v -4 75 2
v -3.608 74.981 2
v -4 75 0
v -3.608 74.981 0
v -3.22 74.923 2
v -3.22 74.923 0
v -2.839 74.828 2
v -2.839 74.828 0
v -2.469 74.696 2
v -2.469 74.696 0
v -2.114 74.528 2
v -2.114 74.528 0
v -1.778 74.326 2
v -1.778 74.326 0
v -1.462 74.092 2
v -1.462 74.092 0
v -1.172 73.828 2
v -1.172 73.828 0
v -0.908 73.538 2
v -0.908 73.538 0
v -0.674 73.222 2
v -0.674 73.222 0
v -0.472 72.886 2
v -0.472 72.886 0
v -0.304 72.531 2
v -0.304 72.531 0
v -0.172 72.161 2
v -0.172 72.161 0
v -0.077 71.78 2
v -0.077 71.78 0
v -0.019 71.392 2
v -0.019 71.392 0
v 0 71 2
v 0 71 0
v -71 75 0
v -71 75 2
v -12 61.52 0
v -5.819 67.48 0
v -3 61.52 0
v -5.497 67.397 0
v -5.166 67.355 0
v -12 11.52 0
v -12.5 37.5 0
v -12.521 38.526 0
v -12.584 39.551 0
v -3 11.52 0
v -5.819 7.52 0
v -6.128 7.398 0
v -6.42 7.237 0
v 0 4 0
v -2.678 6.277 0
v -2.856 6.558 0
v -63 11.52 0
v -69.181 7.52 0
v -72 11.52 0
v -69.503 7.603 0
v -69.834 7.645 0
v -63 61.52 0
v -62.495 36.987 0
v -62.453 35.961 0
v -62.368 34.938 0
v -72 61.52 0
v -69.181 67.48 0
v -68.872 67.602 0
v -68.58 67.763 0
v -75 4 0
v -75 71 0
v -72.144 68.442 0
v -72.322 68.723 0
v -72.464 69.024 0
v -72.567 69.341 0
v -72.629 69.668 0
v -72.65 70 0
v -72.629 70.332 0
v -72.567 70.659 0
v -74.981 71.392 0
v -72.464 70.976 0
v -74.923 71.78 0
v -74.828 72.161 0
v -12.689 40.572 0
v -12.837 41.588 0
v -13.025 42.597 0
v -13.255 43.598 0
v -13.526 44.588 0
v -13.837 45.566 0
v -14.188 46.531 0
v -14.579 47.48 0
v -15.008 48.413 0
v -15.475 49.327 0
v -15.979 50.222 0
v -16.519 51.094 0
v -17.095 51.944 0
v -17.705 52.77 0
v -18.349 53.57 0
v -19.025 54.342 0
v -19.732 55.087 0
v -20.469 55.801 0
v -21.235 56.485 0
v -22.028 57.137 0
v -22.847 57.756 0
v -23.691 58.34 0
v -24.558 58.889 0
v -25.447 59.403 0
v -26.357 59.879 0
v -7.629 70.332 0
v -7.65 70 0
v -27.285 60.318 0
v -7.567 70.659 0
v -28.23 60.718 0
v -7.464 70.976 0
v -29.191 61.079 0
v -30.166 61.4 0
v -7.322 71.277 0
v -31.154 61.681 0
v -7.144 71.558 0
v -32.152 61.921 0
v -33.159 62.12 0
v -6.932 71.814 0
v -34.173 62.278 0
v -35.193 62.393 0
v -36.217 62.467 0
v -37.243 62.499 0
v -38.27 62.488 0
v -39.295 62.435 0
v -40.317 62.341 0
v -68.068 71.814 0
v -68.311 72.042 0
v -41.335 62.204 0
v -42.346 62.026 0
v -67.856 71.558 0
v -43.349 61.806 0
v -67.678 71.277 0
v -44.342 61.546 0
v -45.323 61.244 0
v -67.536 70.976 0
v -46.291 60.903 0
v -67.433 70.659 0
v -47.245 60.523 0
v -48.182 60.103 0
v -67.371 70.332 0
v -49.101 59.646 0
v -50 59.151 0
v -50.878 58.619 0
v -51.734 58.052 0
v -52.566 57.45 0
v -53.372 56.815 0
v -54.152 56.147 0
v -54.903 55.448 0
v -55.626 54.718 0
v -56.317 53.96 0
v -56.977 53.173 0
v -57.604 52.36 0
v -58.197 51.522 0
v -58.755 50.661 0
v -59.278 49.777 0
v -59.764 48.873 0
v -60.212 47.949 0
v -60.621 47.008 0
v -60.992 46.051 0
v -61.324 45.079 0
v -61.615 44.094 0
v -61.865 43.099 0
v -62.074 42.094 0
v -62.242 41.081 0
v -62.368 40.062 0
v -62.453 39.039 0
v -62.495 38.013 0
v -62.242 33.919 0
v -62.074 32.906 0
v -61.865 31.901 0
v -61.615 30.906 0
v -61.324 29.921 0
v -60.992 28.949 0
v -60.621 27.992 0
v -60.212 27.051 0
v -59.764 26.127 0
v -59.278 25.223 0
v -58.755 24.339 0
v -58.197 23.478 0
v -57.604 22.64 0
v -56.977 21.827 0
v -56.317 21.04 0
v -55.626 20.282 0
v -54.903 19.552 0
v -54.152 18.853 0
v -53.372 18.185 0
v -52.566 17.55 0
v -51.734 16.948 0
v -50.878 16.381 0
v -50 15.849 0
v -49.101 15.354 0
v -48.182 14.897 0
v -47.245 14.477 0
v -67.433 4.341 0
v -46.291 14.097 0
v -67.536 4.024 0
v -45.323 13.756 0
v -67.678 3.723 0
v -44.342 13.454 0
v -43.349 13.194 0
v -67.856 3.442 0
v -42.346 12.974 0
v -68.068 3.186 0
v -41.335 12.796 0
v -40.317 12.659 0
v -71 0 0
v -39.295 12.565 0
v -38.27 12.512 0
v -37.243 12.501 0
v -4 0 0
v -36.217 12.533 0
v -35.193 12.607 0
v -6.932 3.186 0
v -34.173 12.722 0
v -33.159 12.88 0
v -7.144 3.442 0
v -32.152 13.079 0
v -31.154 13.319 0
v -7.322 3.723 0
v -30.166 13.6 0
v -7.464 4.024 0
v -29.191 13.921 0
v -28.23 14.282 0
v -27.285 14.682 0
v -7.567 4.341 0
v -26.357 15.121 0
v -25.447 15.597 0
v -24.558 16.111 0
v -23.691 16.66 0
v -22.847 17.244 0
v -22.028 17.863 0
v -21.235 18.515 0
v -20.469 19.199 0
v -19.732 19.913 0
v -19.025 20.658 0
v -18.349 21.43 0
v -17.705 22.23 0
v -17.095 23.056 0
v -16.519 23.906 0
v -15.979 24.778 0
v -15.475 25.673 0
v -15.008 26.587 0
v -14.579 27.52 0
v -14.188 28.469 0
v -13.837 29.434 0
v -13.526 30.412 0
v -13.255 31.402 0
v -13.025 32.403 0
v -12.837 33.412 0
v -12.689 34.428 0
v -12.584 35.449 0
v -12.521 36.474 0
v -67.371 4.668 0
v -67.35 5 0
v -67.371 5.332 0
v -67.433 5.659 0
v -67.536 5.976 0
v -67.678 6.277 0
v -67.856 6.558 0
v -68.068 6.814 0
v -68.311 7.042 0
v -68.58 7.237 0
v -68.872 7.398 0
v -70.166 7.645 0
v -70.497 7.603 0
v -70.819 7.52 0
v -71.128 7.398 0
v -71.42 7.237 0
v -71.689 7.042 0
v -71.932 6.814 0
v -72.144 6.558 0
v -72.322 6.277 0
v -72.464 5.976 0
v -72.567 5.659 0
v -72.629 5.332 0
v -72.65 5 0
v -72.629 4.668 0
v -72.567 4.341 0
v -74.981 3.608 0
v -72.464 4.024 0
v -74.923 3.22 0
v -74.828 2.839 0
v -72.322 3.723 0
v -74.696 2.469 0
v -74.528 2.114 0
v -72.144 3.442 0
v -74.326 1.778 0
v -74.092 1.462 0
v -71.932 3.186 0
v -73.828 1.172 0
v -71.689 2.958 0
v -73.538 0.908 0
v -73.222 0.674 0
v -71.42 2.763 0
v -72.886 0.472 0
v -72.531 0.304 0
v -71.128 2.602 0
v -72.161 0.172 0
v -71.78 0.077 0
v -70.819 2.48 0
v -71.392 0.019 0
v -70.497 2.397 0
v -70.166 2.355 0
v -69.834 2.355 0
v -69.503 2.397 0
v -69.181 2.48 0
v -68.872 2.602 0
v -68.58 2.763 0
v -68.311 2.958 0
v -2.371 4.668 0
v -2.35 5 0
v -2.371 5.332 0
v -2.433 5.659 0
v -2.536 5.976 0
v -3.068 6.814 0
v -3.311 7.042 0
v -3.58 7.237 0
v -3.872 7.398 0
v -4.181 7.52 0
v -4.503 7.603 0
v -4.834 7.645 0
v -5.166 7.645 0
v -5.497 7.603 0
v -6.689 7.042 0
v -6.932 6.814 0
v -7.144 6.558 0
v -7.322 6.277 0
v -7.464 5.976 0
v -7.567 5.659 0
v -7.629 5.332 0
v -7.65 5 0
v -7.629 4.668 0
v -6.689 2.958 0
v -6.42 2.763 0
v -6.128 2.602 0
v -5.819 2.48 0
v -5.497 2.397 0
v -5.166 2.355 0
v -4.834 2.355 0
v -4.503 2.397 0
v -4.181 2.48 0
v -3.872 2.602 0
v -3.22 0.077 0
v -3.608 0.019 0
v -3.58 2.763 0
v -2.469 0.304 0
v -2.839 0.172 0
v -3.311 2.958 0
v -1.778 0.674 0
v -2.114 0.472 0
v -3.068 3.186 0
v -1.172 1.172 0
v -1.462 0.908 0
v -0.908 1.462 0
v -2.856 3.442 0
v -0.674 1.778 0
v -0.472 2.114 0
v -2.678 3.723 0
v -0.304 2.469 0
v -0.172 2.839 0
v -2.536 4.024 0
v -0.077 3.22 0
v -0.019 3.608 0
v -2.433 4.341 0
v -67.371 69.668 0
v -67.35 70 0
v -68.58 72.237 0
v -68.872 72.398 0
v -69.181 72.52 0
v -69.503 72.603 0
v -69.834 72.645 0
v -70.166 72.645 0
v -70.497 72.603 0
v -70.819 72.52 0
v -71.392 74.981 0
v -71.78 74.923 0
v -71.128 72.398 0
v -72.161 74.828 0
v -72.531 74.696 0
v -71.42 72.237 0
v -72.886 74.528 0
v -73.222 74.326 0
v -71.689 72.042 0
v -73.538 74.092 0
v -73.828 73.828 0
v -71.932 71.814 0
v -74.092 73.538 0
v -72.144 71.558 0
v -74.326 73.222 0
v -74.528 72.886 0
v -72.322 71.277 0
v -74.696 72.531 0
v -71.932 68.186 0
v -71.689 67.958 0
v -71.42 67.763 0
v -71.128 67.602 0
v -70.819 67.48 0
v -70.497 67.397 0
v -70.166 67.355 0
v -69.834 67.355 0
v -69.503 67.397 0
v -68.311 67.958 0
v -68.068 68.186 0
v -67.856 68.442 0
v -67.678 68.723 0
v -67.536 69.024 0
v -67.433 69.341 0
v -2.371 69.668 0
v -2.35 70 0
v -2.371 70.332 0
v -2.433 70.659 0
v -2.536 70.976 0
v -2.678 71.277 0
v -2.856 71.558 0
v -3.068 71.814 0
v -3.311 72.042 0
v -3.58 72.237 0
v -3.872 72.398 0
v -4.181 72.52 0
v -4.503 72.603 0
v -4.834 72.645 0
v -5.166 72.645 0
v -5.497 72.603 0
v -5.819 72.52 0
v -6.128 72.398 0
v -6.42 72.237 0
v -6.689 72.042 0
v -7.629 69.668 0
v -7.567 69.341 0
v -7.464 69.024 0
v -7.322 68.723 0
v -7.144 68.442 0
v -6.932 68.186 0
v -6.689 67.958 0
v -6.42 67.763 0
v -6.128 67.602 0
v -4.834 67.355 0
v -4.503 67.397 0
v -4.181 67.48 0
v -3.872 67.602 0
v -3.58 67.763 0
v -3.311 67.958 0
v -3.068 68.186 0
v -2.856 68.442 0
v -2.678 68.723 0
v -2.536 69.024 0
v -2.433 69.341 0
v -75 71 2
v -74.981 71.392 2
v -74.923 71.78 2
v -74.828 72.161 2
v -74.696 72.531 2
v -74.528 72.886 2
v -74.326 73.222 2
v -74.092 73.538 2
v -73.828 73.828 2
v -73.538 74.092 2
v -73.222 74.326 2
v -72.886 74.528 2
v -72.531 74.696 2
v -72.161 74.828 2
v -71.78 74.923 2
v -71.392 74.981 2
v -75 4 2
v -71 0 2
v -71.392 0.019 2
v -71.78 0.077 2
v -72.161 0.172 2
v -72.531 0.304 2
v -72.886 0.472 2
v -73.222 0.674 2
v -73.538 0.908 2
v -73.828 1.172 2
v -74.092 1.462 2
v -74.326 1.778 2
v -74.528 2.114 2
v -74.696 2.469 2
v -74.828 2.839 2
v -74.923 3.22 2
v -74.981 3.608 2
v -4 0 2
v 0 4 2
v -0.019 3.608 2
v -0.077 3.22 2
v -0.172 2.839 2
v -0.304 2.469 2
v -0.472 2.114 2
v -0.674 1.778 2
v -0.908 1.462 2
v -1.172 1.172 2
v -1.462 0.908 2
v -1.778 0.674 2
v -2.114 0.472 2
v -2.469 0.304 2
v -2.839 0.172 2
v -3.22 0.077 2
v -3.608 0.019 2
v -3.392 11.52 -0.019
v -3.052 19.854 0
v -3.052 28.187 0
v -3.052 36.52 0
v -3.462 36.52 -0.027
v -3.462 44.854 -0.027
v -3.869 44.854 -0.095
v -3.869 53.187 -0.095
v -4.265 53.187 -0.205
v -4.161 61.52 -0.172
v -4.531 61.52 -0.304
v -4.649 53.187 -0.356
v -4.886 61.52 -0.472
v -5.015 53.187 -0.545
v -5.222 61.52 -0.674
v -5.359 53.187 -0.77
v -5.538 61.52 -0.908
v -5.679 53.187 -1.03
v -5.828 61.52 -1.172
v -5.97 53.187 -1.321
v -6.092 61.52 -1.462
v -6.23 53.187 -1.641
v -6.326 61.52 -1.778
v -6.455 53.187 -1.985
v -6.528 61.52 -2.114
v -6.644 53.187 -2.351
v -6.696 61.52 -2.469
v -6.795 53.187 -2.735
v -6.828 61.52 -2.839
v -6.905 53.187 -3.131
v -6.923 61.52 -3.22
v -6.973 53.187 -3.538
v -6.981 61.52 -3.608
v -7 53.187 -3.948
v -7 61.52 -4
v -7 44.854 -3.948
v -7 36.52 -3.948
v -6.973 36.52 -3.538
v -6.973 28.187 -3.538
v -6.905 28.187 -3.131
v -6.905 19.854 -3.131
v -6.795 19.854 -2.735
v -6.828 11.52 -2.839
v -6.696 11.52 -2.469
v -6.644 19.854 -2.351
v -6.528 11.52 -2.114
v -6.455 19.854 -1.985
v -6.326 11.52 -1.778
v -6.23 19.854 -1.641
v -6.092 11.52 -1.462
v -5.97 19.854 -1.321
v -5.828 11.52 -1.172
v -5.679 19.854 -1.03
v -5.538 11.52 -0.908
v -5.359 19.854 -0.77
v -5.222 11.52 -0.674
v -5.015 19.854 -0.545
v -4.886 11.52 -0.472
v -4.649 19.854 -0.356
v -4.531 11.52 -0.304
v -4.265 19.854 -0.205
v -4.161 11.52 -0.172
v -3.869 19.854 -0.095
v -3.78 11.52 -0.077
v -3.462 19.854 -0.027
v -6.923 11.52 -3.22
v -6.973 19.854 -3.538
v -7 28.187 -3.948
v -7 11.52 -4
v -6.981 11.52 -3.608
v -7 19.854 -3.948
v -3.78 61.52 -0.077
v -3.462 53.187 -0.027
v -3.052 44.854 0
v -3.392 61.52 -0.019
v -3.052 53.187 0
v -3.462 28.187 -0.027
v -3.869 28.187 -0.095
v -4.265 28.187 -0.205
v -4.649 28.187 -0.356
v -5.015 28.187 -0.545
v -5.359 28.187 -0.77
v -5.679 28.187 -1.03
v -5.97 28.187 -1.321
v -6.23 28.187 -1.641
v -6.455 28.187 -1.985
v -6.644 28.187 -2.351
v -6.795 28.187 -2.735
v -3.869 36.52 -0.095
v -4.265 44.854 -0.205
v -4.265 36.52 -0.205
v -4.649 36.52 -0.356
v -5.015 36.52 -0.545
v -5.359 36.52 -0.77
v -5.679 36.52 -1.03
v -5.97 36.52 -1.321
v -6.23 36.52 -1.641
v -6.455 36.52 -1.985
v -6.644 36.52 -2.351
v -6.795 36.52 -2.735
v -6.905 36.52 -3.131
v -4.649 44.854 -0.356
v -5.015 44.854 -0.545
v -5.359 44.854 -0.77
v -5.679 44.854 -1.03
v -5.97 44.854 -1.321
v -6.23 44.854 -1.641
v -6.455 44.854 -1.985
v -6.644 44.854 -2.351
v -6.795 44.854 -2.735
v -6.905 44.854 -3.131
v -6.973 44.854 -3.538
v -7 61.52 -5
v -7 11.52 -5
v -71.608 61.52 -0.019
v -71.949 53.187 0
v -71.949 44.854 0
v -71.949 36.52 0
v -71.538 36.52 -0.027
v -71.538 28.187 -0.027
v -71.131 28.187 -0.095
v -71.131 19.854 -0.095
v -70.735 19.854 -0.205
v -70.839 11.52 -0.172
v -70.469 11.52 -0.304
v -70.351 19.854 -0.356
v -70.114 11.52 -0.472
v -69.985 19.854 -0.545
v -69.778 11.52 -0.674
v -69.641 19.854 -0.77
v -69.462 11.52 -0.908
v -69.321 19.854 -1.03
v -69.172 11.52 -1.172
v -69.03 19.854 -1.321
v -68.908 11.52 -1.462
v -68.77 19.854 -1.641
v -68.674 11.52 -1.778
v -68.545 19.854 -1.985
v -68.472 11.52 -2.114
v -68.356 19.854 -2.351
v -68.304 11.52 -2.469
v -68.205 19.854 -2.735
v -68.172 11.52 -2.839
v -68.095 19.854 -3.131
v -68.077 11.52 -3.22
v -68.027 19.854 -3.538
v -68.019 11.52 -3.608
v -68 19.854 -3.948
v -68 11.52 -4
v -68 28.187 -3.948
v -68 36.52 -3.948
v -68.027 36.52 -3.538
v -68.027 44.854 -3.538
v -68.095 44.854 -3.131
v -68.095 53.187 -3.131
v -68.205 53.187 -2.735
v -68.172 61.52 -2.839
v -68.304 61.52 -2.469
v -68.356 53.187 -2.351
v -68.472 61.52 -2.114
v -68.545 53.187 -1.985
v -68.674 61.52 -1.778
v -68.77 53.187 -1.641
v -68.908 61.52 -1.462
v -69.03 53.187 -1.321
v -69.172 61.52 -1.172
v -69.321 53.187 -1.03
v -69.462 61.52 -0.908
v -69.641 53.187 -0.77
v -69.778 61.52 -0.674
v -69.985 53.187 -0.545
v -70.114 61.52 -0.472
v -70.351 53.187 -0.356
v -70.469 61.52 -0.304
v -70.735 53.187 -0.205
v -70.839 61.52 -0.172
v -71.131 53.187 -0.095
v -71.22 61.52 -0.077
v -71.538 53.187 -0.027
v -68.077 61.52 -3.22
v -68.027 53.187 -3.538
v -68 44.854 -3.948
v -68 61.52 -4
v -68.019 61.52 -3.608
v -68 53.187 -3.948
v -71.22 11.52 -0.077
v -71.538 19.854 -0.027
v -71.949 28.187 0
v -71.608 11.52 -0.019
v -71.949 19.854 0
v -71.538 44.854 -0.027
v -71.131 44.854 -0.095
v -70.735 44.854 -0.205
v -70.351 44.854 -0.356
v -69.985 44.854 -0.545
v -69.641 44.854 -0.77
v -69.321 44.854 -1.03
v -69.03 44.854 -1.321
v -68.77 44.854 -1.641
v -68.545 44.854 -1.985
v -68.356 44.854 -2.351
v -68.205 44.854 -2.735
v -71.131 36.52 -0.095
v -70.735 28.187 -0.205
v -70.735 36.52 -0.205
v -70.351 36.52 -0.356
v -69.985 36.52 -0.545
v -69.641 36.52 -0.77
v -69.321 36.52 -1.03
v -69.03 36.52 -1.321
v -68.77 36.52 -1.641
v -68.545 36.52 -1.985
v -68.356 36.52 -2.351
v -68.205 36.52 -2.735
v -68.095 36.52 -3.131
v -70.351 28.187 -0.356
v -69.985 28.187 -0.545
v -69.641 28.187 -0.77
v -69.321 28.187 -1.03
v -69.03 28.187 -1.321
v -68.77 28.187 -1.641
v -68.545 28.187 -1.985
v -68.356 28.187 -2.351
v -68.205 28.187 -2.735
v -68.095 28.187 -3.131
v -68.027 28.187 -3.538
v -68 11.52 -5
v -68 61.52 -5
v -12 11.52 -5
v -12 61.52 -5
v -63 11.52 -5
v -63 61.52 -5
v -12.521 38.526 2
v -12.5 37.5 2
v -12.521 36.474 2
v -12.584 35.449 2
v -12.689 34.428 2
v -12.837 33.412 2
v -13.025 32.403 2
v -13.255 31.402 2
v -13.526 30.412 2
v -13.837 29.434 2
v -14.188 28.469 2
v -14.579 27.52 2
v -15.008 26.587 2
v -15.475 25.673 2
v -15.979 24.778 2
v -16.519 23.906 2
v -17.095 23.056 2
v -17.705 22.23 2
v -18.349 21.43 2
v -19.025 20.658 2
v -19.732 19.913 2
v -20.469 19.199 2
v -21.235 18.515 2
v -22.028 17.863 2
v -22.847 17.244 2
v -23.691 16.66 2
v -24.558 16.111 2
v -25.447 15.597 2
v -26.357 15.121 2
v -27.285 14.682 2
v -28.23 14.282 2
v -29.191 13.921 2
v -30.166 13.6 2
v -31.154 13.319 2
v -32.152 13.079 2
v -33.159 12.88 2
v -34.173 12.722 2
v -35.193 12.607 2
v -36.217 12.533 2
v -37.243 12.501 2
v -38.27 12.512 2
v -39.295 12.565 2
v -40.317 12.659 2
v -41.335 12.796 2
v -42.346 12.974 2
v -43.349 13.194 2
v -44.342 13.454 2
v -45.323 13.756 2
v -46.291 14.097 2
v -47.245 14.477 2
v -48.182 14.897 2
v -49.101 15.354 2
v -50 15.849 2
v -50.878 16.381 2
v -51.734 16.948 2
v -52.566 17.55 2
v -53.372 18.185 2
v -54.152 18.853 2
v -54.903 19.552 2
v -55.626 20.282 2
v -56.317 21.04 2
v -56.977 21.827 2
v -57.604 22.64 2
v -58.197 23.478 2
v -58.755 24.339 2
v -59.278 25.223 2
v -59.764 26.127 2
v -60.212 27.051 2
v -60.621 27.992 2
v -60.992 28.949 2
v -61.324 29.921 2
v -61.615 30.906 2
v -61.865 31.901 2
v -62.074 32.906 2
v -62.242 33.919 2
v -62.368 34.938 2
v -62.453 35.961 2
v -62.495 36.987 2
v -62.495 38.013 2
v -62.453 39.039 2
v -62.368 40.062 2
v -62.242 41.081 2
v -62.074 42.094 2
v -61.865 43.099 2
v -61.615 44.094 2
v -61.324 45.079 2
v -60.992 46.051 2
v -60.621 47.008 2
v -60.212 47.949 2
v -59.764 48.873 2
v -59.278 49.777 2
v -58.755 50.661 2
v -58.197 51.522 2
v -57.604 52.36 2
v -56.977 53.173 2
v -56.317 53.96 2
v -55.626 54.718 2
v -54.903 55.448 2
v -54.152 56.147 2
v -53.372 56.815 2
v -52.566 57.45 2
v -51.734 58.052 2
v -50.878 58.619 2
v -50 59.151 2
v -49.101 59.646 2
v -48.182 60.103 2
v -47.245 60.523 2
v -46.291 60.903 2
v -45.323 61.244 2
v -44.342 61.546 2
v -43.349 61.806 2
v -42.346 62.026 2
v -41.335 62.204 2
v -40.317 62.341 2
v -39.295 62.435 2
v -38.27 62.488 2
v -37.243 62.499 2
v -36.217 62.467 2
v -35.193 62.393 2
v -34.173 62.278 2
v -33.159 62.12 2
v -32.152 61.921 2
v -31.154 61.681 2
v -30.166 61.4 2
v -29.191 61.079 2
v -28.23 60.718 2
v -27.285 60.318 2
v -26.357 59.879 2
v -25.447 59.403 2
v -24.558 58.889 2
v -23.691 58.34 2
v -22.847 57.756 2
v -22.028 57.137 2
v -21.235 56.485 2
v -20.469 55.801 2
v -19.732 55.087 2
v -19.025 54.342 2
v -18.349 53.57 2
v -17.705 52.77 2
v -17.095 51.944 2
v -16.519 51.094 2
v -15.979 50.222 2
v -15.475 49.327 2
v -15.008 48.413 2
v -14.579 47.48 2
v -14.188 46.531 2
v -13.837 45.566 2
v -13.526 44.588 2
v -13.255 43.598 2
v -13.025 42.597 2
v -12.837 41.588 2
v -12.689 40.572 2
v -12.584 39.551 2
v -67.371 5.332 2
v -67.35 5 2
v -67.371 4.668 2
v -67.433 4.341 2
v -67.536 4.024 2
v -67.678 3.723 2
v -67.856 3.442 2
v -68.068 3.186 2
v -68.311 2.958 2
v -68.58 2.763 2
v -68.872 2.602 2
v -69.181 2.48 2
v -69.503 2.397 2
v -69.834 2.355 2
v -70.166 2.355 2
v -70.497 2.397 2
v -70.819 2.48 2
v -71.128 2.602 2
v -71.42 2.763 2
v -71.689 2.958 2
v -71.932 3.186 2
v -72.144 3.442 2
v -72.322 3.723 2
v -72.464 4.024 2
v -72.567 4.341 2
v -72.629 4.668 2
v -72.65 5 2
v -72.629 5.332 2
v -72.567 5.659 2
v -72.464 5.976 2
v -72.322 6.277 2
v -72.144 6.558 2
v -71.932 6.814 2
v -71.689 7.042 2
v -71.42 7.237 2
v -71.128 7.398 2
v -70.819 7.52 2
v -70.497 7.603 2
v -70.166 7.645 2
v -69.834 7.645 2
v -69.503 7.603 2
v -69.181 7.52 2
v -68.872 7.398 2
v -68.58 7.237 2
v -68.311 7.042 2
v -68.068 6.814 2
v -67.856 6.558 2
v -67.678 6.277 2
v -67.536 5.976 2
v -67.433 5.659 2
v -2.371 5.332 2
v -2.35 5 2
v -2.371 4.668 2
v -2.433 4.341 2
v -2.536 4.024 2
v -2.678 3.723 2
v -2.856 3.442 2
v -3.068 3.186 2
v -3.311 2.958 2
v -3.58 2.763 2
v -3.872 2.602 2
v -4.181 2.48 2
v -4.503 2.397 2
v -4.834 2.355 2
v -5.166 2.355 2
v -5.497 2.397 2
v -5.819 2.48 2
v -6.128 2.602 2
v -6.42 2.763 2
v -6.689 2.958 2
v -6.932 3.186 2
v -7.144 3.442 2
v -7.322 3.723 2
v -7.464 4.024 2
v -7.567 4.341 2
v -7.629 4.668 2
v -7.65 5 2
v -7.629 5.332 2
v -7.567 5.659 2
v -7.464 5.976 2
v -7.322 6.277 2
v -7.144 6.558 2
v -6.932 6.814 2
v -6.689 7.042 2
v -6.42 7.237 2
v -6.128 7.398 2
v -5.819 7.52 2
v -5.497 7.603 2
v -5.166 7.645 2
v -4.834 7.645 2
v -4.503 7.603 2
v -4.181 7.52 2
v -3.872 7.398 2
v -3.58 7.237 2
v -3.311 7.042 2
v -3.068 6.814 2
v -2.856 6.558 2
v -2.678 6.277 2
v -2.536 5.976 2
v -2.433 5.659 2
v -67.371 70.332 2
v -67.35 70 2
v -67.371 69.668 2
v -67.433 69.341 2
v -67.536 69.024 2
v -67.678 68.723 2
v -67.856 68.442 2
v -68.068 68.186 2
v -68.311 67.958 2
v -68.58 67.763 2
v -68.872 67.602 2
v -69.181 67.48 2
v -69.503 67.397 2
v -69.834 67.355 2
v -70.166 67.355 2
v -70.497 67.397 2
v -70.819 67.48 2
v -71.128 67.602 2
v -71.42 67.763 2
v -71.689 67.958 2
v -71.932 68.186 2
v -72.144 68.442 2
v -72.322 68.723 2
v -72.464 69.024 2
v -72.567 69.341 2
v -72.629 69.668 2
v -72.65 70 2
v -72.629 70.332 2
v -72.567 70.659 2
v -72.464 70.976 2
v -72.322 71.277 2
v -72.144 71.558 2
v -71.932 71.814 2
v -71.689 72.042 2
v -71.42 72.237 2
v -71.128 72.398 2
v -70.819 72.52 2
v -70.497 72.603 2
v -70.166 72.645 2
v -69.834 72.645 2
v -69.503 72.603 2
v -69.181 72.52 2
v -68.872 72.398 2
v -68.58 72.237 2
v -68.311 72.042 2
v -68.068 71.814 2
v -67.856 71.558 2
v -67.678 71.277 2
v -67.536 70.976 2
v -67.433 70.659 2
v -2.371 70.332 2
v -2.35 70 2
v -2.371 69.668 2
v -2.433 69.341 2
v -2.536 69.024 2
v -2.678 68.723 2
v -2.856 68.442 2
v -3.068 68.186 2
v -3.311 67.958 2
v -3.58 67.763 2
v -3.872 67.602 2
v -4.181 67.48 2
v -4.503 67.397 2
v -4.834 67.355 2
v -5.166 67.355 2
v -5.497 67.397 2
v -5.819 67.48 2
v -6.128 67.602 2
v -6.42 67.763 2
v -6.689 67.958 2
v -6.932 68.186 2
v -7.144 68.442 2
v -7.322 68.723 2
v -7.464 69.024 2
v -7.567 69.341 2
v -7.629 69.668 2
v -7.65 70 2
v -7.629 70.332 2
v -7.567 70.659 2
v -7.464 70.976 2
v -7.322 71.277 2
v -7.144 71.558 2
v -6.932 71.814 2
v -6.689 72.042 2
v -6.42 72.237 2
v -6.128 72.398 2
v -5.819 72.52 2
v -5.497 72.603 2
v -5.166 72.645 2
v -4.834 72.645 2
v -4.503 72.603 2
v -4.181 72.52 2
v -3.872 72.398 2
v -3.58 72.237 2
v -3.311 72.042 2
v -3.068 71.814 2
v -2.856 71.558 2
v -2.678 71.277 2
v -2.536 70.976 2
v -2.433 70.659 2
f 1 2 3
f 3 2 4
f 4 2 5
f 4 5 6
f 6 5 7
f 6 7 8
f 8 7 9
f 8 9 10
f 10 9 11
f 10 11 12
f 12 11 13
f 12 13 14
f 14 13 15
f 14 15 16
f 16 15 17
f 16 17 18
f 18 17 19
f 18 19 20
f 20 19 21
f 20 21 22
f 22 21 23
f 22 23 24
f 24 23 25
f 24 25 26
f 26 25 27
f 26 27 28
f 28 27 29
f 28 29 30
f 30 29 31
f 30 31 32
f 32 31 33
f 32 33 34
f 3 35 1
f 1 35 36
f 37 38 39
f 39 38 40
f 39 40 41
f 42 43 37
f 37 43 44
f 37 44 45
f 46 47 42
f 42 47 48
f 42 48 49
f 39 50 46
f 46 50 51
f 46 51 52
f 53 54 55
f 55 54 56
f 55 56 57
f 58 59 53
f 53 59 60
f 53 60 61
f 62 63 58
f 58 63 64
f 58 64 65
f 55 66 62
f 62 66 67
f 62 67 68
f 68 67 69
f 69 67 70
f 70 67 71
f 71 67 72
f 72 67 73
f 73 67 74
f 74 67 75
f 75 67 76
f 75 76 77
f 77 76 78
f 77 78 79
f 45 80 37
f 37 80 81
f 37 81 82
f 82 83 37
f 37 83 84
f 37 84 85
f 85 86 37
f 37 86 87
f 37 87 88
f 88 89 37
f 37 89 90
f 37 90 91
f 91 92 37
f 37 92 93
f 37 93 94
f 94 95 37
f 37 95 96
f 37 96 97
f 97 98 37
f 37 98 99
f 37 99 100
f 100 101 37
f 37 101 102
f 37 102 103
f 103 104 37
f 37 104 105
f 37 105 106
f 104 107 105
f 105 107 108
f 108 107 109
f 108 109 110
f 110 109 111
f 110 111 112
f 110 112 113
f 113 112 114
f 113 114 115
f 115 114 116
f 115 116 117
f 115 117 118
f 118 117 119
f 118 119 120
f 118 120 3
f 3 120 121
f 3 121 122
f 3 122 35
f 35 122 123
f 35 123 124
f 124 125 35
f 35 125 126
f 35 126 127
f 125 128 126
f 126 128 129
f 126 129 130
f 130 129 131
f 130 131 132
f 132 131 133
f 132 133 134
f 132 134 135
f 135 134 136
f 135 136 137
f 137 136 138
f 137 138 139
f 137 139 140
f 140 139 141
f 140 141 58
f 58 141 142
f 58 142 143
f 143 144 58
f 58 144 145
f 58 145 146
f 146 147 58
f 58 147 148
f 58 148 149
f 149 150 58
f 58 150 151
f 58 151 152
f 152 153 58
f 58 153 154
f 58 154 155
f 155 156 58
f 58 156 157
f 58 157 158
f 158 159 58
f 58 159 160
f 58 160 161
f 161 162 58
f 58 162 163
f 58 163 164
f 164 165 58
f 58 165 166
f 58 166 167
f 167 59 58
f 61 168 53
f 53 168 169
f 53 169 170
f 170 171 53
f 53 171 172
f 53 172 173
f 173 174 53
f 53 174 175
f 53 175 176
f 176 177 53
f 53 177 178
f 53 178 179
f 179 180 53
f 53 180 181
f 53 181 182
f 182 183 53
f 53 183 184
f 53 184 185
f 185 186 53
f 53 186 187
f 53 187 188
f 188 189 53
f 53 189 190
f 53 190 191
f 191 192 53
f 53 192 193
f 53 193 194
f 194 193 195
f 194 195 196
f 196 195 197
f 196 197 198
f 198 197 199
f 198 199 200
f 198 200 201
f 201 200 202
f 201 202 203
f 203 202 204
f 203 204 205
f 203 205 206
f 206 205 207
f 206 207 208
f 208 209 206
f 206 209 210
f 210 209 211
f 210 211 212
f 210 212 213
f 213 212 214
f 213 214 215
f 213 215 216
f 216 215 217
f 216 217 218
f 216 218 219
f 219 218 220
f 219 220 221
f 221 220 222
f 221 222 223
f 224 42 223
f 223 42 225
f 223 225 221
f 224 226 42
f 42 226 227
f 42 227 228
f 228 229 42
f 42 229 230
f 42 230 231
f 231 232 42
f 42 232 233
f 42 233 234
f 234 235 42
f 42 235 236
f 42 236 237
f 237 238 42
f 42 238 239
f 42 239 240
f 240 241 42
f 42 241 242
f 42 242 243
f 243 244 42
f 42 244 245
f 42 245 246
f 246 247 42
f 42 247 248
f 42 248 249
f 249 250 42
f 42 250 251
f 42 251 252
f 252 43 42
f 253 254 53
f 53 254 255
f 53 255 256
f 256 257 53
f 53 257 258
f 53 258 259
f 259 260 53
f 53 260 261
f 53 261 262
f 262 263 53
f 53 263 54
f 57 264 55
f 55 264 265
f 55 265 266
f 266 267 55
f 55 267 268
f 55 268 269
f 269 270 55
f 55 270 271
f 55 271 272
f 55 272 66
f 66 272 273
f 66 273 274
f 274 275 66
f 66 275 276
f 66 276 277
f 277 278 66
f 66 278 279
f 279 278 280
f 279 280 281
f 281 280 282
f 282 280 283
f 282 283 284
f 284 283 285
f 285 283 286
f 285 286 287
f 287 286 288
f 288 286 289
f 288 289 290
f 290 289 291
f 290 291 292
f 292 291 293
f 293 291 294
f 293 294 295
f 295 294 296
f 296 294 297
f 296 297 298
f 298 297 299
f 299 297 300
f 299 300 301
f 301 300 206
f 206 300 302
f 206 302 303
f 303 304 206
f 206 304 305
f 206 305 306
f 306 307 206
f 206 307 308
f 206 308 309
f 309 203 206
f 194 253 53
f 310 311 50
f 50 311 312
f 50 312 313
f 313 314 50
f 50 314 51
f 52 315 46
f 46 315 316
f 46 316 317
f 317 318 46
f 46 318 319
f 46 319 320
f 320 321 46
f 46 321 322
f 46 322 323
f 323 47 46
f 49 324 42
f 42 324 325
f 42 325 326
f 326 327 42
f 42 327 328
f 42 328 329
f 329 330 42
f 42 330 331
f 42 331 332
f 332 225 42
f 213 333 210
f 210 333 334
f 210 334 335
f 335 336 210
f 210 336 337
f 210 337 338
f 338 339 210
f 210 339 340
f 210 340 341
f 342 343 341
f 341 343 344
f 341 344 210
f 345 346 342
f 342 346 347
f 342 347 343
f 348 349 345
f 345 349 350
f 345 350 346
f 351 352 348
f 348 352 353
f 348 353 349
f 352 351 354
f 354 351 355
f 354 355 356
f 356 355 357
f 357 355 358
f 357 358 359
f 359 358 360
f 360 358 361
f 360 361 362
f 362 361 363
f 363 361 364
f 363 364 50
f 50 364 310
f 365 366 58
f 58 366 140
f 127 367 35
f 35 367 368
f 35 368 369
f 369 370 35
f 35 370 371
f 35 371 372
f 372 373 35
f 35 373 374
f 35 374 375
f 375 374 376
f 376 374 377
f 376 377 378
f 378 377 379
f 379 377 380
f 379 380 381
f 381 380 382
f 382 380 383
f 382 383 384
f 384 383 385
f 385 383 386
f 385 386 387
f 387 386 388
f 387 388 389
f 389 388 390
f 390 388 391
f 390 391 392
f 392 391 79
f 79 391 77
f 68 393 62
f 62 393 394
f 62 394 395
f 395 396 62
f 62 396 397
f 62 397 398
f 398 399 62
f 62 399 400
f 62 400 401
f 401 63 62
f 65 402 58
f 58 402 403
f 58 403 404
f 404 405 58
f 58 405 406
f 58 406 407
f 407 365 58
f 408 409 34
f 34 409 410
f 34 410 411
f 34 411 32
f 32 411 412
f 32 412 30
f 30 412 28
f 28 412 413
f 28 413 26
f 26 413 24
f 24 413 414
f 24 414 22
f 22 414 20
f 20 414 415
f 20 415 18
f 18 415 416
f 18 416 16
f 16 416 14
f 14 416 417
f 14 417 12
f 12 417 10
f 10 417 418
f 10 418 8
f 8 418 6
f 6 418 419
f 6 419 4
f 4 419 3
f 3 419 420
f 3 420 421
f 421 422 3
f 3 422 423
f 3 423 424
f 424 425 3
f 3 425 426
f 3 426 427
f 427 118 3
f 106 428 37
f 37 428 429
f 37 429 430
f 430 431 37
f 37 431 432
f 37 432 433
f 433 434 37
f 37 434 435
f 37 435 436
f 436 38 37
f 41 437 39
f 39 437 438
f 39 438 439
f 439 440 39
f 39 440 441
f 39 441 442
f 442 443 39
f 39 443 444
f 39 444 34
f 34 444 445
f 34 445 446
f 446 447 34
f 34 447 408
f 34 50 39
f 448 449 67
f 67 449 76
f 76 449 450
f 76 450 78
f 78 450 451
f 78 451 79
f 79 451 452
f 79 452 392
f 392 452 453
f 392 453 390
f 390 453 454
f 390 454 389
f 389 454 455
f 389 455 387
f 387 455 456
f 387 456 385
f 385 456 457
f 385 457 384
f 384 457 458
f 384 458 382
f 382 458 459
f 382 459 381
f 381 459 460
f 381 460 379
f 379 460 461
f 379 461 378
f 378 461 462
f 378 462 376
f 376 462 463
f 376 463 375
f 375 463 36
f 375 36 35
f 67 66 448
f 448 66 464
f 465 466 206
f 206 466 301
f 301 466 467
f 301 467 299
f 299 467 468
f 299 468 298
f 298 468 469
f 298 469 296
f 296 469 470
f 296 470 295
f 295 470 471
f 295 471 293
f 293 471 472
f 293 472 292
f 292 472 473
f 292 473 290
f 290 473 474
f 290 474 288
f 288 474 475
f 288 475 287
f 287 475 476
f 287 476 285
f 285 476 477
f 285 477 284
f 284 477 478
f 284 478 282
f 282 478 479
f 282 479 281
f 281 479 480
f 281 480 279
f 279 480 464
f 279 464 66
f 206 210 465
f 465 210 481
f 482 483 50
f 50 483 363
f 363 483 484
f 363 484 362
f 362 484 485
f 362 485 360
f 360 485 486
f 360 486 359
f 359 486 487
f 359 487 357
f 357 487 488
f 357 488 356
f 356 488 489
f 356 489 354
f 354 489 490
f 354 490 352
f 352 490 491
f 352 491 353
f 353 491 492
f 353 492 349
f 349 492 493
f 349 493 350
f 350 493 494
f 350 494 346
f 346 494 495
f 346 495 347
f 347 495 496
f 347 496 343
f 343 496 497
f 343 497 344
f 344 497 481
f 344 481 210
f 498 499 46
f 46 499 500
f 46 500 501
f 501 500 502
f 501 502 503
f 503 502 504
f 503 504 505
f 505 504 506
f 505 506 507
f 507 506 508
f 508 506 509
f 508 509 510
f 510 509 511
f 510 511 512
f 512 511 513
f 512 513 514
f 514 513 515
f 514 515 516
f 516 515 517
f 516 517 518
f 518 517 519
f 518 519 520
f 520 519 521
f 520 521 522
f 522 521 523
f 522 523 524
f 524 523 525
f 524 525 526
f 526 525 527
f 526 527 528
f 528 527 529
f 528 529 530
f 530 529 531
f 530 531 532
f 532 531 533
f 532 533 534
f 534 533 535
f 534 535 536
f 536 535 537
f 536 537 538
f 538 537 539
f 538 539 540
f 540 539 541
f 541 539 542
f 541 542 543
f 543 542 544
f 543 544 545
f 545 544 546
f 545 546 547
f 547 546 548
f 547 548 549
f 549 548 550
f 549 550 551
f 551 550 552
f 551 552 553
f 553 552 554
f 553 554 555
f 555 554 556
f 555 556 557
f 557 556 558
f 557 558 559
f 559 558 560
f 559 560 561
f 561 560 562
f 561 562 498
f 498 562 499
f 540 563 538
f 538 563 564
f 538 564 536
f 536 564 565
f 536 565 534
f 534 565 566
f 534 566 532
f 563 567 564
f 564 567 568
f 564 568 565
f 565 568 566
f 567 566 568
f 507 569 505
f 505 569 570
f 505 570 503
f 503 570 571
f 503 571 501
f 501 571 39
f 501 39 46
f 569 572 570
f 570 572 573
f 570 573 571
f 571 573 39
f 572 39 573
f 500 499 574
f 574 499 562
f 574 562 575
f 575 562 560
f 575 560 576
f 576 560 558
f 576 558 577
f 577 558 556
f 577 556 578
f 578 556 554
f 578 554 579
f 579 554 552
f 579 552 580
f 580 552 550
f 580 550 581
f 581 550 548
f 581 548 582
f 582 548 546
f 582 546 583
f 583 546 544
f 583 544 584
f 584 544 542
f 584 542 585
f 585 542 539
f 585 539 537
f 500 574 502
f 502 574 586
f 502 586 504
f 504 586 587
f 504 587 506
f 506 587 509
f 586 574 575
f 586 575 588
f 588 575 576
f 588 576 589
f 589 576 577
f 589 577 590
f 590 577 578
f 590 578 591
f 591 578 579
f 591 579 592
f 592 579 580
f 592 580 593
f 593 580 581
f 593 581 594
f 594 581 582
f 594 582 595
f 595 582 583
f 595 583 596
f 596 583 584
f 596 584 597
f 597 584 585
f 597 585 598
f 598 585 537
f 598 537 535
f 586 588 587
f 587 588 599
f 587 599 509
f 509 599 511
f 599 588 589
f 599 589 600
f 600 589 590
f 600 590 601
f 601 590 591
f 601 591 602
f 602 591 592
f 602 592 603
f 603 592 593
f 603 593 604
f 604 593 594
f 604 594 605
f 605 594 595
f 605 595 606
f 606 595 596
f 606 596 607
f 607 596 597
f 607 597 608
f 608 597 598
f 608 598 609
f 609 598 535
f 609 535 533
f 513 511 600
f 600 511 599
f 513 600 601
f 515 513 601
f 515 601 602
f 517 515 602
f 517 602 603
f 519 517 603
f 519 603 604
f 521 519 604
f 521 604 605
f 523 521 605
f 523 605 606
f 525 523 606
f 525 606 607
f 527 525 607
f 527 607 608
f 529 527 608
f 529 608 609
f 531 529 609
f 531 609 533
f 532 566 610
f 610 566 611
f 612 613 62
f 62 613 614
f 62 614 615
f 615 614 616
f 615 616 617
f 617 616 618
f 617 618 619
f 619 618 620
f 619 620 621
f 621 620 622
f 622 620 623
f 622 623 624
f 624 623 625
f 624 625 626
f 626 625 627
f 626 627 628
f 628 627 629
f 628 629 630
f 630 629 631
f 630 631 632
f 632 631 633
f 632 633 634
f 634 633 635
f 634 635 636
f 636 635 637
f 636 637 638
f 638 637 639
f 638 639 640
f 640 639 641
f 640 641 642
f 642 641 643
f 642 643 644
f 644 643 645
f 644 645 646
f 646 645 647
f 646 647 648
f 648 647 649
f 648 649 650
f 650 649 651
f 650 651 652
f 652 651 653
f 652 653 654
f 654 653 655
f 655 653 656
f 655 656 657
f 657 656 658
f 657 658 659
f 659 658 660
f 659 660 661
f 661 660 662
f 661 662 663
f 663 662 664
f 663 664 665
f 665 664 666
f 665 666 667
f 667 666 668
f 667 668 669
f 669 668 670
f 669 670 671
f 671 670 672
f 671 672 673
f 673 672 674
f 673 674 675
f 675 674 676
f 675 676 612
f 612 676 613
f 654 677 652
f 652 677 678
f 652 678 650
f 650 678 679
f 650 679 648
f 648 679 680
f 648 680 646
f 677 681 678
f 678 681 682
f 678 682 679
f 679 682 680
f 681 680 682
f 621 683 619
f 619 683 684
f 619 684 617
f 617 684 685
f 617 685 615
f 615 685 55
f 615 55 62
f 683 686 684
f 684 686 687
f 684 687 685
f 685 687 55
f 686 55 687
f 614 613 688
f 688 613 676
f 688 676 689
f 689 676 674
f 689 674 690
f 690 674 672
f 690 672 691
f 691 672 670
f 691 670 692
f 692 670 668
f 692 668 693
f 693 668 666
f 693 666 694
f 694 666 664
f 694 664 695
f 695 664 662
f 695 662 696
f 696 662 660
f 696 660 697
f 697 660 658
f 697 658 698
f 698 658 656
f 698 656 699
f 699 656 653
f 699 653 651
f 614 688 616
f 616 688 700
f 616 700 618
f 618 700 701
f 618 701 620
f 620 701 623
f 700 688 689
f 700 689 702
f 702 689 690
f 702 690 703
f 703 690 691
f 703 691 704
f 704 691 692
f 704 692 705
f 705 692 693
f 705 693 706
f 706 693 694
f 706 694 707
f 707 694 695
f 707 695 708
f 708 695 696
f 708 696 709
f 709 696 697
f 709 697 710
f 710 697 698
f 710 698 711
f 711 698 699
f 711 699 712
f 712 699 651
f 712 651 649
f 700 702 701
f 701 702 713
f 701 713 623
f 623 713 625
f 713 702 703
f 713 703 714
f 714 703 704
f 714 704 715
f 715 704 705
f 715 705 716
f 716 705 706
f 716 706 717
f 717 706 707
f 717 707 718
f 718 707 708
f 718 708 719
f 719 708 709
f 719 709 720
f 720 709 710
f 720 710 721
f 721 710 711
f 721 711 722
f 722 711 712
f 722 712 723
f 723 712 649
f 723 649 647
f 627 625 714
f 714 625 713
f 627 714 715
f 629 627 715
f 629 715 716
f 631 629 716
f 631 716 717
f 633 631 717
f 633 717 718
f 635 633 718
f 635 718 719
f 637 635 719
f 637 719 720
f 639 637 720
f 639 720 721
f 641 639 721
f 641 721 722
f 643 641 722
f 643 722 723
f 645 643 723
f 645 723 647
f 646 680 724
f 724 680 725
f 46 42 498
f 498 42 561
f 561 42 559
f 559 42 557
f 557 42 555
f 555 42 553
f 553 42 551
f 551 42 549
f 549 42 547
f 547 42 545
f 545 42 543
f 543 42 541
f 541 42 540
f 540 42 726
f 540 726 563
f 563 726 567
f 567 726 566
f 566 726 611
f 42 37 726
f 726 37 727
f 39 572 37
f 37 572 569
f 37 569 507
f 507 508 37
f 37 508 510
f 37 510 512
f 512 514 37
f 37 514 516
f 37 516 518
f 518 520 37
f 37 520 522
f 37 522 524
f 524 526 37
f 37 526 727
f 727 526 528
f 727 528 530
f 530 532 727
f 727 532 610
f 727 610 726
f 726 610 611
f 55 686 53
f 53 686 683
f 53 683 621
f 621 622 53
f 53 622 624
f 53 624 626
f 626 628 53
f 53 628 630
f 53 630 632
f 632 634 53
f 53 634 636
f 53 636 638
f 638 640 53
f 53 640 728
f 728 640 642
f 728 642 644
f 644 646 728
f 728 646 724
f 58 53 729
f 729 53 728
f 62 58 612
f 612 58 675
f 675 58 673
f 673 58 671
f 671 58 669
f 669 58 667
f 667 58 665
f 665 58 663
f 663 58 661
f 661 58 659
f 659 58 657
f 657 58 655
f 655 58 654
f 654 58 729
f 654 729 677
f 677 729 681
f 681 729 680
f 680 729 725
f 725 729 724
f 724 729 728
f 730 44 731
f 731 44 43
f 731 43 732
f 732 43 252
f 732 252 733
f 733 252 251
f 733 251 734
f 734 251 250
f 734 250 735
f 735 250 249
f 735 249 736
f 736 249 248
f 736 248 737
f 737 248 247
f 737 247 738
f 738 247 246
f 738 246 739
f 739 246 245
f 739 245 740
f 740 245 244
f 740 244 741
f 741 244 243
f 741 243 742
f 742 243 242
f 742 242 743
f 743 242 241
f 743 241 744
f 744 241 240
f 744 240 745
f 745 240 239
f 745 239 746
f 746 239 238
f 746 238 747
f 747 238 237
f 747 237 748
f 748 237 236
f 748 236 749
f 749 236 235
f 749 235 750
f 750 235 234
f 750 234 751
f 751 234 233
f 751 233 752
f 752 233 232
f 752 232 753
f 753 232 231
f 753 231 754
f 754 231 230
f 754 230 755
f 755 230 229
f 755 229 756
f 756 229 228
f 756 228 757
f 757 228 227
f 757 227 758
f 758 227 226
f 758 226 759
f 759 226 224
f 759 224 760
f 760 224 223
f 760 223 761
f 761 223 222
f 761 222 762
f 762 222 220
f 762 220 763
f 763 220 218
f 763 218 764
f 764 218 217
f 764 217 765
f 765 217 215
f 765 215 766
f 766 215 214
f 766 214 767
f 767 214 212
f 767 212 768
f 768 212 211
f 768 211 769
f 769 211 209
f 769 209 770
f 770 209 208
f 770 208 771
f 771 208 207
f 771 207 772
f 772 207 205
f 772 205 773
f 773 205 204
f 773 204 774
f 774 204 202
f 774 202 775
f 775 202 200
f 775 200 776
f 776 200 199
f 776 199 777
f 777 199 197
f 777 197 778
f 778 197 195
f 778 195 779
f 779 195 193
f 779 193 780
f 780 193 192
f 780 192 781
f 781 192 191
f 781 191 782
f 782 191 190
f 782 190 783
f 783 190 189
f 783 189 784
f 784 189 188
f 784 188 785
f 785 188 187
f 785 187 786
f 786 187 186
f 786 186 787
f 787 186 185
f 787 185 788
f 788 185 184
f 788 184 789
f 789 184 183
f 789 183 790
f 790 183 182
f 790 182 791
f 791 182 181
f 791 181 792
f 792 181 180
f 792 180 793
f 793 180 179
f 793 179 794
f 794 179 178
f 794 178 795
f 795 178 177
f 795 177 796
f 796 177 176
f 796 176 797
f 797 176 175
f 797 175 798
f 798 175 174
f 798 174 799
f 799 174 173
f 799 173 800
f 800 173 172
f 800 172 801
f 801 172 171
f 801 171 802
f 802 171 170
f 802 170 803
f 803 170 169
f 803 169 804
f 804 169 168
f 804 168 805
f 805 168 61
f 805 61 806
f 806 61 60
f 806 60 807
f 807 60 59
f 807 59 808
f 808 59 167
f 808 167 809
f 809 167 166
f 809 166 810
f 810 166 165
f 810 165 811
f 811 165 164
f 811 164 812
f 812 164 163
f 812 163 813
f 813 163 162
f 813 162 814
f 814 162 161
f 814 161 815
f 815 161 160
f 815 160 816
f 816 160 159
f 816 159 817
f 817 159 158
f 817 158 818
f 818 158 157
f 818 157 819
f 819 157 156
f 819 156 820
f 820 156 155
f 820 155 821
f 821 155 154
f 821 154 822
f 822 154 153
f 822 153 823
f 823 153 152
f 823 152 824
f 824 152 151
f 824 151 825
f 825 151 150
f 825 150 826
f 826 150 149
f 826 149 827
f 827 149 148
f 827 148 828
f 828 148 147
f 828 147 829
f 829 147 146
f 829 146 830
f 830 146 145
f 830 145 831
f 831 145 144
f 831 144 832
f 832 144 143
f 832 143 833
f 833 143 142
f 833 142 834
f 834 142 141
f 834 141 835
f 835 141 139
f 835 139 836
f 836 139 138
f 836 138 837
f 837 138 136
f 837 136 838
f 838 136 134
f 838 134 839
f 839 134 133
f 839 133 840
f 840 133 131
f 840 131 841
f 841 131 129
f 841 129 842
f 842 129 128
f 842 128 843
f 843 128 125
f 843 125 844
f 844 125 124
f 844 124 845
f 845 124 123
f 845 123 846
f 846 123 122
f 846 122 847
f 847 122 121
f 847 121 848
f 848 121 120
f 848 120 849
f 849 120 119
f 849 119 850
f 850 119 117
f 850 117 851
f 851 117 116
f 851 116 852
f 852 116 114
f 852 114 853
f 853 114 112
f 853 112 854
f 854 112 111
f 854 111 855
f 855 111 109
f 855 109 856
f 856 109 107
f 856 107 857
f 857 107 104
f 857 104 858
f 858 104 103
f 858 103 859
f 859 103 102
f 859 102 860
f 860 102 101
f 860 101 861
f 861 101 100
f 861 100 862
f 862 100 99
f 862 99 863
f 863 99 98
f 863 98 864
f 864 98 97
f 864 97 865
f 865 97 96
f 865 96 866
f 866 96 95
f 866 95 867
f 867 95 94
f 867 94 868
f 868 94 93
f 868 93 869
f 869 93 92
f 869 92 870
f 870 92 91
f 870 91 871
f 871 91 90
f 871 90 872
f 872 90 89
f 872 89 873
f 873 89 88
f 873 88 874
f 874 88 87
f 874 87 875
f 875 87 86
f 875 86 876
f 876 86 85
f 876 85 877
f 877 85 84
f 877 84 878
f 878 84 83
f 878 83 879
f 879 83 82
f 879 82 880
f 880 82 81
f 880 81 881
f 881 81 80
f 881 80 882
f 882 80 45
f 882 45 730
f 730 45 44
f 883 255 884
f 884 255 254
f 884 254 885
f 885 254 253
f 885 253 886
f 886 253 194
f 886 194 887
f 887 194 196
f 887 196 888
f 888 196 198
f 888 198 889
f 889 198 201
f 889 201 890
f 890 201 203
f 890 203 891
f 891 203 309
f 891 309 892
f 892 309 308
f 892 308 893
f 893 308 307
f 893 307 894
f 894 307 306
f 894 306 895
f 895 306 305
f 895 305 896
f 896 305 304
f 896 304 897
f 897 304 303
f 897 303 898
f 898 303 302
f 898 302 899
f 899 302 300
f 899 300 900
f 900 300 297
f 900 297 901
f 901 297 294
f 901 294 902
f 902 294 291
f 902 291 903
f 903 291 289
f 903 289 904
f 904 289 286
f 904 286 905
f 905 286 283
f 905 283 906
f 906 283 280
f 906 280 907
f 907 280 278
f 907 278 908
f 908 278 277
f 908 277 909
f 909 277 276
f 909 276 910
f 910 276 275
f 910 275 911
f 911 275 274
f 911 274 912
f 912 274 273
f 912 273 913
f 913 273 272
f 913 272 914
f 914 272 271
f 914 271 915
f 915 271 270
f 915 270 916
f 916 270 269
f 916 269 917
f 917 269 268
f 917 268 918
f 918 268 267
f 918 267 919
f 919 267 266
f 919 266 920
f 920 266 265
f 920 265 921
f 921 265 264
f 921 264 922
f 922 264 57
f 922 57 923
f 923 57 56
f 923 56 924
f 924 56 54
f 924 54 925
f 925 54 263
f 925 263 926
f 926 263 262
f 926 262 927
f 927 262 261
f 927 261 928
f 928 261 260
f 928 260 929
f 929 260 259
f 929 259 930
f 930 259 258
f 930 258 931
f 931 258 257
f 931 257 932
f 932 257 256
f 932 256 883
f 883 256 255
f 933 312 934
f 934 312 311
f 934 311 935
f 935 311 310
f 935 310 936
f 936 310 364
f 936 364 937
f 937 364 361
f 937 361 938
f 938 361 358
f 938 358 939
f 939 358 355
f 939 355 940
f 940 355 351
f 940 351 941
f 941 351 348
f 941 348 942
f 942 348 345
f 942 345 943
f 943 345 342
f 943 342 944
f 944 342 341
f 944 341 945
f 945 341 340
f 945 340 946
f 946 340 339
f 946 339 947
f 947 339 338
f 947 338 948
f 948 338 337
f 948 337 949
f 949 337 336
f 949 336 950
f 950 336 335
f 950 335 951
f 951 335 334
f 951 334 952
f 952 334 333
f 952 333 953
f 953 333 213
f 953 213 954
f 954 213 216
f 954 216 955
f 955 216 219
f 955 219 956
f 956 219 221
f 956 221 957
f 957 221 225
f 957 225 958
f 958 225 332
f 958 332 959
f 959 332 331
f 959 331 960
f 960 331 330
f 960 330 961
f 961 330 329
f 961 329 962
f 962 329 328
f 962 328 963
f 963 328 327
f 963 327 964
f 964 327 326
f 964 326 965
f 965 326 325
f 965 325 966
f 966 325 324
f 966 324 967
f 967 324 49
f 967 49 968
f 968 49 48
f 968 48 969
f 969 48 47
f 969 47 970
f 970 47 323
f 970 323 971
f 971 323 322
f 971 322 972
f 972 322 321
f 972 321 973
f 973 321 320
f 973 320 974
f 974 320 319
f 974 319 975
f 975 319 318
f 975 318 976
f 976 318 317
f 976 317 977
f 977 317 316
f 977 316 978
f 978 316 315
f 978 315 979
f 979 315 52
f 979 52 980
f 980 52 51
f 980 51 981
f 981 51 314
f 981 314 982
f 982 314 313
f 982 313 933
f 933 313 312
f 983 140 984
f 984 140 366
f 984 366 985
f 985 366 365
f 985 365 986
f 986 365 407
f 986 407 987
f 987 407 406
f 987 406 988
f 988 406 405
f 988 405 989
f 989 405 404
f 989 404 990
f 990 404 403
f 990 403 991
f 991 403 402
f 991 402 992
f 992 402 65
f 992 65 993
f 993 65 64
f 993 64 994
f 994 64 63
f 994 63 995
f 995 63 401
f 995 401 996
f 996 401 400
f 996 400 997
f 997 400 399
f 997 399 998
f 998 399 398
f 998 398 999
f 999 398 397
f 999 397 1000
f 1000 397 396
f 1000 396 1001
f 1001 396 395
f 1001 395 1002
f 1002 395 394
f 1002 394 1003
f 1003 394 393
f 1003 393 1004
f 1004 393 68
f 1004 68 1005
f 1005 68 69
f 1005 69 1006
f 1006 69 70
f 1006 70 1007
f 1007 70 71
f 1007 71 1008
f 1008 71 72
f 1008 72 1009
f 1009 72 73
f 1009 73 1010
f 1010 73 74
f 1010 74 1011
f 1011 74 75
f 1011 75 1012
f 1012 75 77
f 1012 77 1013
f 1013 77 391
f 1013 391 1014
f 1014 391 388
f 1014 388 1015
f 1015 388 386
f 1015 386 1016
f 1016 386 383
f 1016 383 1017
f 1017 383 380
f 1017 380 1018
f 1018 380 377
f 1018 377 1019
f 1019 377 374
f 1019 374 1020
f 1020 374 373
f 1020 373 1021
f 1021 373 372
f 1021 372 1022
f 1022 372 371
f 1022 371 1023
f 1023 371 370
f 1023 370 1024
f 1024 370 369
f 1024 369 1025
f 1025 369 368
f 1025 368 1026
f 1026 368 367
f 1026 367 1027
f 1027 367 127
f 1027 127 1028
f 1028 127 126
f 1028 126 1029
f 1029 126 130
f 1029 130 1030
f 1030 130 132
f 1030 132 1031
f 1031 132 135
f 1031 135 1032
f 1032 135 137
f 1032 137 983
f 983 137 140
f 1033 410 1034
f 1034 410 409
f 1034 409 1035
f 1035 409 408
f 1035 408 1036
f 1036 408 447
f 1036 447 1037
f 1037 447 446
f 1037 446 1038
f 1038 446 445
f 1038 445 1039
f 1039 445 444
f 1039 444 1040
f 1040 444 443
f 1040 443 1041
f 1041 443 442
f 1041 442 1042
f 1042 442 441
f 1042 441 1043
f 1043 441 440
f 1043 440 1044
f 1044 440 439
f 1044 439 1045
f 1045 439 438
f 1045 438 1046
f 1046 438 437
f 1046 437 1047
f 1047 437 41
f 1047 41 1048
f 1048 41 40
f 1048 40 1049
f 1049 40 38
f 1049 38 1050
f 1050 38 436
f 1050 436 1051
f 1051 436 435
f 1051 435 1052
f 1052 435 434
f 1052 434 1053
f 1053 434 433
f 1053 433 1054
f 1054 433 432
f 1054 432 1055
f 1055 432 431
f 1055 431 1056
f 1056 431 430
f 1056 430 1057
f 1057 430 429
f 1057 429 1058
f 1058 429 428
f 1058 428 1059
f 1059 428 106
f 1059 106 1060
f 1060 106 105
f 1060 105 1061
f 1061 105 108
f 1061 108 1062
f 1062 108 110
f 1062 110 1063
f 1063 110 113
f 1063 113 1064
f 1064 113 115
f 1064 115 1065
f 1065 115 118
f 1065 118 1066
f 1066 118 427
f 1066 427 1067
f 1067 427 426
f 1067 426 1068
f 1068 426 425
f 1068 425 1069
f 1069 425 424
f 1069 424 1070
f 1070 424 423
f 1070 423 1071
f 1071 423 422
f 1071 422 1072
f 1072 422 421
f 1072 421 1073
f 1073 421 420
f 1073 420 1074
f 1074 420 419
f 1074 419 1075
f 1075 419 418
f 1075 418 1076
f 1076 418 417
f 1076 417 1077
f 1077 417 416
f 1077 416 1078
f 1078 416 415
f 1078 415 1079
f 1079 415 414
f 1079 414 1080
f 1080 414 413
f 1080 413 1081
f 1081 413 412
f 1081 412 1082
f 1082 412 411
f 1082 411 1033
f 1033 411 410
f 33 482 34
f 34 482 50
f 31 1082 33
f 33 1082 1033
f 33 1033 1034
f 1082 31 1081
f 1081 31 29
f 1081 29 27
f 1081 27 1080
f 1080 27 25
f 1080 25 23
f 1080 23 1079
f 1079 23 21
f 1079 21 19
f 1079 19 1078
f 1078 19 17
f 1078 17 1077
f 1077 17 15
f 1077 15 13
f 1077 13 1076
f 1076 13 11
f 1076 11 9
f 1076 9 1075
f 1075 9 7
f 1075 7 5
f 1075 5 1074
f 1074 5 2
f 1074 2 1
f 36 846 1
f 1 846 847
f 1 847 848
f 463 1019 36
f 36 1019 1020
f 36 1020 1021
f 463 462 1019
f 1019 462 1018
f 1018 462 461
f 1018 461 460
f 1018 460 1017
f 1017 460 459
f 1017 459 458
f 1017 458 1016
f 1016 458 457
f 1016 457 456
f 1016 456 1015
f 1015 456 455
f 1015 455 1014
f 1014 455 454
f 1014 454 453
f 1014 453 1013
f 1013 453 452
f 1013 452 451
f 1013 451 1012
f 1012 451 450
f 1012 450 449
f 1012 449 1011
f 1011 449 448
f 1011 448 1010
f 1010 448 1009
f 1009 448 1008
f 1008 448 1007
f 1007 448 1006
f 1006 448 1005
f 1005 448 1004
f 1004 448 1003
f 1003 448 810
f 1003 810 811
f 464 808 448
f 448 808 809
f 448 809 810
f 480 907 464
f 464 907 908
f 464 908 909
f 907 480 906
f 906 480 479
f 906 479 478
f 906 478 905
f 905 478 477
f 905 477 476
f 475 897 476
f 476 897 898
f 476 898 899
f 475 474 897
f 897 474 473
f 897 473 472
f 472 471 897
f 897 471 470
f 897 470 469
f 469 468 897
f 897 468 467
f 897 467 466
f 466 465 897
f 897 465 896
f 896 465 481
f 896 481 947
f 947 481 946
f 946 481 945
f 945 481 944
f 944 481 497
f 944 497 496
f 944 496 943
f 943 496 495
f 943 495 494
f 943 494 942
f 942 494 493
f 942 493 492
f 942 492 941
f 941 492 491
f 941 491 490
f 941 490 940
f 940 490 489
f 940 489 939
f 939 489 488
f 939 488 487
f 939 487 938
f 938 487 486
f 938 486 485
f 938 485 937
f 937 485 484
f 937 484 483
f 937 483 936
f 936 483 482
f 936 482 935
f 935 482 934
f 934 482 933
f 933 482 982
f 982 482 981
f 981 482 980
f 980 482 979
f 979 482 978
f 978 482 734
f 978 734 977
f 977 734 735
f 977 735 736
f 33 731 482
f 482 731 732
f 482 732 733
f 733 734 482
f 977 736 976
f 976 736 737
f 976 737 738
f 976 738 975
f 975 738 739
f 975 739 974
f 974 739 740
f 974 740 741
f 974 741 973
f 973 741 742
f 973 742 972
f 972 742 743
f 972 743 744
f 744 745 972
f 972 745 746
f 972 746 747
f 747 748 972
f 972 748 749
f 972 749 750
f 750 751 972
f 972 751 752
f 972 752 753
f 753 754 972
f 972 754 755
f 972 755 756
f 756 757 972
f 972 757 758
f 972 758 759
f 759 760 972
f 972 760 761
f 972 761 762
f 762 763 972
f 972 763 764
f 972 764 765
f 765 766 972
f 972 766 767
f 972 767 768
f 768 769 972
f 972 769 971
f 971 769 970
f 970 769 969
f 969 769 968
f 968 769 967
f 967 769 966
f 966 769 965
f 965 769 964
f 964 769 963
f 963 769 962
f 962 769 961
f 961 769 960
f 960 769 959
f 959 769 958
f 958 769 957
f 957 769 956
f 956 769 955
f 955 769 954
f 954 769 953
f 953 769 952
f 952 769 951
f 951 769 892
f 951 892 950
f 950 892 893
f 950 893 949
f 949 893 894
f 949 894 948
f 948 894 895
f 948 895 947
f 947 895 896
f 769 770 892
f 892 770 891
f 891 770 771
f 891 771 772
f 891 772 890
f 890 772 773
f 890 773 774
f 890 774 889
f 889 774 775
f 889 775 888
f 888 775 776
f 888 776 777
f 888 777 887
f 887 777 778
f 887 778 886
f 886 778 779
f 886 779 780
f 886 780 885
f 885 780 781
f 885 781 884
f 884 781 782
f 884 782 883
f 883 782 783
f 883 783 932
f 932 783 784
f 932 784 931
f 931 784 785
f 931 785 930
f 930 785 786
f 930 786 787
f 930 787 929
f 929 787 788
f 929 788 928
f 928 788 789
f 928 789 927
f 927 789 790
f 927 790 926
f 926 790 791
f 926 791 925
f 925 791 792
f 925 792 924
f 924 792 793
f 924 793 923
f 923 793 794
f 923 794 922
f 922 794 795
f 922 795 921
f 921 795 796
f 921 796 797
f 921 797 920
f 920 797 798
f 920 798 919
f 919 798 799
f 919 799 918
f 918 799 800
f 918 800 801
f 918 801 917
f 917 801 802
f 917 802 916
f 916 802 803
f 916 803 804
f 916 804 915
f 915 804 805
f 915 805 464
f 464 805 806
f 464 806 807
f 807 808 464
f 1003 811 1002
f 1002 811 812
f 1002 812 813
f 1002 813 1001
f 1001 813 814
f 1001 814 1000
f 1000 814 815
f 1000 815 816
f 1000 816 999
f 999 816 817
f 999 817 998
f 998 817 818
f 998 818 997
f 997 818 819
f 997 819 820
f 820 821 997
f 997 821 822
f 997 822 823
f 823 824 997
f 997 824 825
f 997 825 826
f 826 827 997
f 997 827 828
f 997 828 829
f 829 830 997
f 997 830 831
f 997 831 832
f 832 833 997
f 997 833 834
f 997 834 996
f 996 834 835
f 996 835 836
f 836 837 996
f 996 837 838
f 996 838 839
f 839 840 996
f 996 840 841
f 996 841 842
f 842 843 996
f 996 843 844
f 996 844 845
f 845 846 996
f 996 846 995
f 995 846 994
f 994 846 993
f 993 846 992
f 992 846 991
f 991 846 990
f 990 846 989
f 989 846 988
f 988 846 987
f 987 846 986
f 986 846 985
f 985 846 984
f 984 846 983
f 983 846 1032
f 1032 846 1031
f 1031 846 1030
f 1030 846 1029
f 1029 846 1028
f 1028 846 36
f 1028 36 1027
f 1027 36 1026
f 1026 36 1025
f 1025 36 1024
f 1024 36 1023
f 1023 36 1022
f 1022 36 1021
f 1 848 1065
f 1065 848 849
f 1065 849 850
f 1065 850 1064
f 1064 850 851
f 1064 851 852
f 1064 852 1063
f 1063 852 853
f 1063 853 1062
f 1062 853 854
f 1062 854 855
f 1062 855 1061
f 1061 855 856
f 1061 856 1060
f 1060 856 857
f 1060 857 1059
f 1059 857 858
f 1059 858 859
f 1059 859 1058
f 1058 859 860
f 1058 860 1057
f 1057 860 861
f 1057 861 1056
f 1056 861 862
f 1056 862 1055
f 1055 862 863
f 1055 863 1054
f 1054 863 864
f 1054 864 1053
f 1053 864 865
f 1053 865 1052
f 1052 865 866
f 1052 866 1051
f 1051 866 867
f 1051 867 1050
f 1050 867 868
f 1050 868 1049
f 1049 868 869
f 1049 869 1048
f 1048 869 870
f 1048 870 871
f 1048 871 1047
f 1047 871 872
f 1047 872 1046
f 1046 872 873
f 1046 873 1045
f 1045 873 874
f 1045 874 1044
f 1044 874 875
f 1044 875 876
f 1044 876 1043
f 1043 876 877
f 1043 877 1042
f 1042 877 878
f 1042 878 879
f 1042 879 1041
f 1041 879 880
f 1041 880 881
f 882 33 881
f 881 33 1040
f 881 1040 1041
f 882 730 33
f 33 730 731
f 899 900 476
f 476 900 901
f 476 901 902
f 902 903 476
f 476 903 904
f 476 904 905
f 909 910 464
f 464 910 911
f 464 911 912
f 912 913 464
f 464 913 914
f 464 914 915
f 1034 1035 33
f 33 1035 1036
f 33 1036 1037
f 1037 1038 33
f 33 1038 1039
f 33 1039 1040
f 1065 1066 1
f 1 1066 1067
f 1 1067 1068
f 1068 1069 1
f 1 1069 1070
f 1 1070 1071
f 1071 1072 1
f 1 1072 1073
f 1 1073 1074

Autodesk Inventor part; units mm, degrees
ref_plane "YZ Plane" through (0, 0, 0) normal (1, 0, 0) x (0, 1, 0)
ref_plane "XZ Plane" through (0, 0, 0) normal (0, 1, 0) x (-1, 0, 0)
ref_plane "XY Plane" through (0, 0, 0) normal (0, 0, 1) x (1, 0, 0)
sketch "Sketch1" plane through (0, 0, 0) normal (0, 0, 1) x (1, 0, 0)
  line L0 (0, 0) -> (-75, 0)
  line L1 (-75, 0) -> (-75, 75)
  line L2 (-75, 75) -> (0, 75)
  line L3 (0, 75) -> (0, 0)
  circle A0 centre (-5, 70) radius 2.65
  circle A1 centre (-70, 70) radius 2.65
  circle A2 centre (-5, 5) radius 2.65
  circle A3 centre (-70, 5) radius 2.65
  circle A4 centre (-37.5, 37.5) radius 25
  line L4 (-63, 61.5202) -> (-68, 61.5202)
  line L5 (-68, 61.5202) -> (-68, 11.5202)
  line L6 (-68, 11.5202) -> (-63, 11.5202)
  line L7 (-63, 11.5202) -> (-63, 61.5202)
  dimension "d0" = 75
  dimension "d1" = 75
  dimension "d2" = 5.3
  dimension "d3" = 5
  dimension "d4" = 5
  dimension "d7" = 65
  dimension "d10" = 65
  dimension "d26" = 50
  dimension "d29" = 50
  dimension "d30" = 5
  dimension "d31" = 25.5
  dimension "d32" = 37.5
extrude "Extrusion1" add sketch "Sketch1" along normal blind 2 contours L0 L1 L2 L3 | L7 L6 L5 L4
extrude "Extrusion2" add sketch "Sketch1" against normal blind 5 contours L7 L6 L5 L4
ref_plane "Work Plane1" through (-37.5, 37.5, 0) normal (1, 0, 0) x (0, 1, 0)
mirror "Mirror1" about plane through (-37.5, 37.5, 0) normal (1, 0, 0) of "Extrusion2"
fillet "Fillet2" radius 4 2 edges at (-68, 36.5202, 0) (-7, 36.5202, 0)
fillet "Fillet3" radius 4 4 edges at (0, 0, 1) (-75, 0, 1) (-75, 75, 1) (0, 75, 1)
equation "\"d1\" = d0"
equation "\"d4\" = d3"
equation "\"d7\" = d0 - 2 * d4"
equation "\"d10\" = d1 - 2 * d3"
equation "\"d32\" = 0.5 * d0"
properties part number "50x5 interface"
